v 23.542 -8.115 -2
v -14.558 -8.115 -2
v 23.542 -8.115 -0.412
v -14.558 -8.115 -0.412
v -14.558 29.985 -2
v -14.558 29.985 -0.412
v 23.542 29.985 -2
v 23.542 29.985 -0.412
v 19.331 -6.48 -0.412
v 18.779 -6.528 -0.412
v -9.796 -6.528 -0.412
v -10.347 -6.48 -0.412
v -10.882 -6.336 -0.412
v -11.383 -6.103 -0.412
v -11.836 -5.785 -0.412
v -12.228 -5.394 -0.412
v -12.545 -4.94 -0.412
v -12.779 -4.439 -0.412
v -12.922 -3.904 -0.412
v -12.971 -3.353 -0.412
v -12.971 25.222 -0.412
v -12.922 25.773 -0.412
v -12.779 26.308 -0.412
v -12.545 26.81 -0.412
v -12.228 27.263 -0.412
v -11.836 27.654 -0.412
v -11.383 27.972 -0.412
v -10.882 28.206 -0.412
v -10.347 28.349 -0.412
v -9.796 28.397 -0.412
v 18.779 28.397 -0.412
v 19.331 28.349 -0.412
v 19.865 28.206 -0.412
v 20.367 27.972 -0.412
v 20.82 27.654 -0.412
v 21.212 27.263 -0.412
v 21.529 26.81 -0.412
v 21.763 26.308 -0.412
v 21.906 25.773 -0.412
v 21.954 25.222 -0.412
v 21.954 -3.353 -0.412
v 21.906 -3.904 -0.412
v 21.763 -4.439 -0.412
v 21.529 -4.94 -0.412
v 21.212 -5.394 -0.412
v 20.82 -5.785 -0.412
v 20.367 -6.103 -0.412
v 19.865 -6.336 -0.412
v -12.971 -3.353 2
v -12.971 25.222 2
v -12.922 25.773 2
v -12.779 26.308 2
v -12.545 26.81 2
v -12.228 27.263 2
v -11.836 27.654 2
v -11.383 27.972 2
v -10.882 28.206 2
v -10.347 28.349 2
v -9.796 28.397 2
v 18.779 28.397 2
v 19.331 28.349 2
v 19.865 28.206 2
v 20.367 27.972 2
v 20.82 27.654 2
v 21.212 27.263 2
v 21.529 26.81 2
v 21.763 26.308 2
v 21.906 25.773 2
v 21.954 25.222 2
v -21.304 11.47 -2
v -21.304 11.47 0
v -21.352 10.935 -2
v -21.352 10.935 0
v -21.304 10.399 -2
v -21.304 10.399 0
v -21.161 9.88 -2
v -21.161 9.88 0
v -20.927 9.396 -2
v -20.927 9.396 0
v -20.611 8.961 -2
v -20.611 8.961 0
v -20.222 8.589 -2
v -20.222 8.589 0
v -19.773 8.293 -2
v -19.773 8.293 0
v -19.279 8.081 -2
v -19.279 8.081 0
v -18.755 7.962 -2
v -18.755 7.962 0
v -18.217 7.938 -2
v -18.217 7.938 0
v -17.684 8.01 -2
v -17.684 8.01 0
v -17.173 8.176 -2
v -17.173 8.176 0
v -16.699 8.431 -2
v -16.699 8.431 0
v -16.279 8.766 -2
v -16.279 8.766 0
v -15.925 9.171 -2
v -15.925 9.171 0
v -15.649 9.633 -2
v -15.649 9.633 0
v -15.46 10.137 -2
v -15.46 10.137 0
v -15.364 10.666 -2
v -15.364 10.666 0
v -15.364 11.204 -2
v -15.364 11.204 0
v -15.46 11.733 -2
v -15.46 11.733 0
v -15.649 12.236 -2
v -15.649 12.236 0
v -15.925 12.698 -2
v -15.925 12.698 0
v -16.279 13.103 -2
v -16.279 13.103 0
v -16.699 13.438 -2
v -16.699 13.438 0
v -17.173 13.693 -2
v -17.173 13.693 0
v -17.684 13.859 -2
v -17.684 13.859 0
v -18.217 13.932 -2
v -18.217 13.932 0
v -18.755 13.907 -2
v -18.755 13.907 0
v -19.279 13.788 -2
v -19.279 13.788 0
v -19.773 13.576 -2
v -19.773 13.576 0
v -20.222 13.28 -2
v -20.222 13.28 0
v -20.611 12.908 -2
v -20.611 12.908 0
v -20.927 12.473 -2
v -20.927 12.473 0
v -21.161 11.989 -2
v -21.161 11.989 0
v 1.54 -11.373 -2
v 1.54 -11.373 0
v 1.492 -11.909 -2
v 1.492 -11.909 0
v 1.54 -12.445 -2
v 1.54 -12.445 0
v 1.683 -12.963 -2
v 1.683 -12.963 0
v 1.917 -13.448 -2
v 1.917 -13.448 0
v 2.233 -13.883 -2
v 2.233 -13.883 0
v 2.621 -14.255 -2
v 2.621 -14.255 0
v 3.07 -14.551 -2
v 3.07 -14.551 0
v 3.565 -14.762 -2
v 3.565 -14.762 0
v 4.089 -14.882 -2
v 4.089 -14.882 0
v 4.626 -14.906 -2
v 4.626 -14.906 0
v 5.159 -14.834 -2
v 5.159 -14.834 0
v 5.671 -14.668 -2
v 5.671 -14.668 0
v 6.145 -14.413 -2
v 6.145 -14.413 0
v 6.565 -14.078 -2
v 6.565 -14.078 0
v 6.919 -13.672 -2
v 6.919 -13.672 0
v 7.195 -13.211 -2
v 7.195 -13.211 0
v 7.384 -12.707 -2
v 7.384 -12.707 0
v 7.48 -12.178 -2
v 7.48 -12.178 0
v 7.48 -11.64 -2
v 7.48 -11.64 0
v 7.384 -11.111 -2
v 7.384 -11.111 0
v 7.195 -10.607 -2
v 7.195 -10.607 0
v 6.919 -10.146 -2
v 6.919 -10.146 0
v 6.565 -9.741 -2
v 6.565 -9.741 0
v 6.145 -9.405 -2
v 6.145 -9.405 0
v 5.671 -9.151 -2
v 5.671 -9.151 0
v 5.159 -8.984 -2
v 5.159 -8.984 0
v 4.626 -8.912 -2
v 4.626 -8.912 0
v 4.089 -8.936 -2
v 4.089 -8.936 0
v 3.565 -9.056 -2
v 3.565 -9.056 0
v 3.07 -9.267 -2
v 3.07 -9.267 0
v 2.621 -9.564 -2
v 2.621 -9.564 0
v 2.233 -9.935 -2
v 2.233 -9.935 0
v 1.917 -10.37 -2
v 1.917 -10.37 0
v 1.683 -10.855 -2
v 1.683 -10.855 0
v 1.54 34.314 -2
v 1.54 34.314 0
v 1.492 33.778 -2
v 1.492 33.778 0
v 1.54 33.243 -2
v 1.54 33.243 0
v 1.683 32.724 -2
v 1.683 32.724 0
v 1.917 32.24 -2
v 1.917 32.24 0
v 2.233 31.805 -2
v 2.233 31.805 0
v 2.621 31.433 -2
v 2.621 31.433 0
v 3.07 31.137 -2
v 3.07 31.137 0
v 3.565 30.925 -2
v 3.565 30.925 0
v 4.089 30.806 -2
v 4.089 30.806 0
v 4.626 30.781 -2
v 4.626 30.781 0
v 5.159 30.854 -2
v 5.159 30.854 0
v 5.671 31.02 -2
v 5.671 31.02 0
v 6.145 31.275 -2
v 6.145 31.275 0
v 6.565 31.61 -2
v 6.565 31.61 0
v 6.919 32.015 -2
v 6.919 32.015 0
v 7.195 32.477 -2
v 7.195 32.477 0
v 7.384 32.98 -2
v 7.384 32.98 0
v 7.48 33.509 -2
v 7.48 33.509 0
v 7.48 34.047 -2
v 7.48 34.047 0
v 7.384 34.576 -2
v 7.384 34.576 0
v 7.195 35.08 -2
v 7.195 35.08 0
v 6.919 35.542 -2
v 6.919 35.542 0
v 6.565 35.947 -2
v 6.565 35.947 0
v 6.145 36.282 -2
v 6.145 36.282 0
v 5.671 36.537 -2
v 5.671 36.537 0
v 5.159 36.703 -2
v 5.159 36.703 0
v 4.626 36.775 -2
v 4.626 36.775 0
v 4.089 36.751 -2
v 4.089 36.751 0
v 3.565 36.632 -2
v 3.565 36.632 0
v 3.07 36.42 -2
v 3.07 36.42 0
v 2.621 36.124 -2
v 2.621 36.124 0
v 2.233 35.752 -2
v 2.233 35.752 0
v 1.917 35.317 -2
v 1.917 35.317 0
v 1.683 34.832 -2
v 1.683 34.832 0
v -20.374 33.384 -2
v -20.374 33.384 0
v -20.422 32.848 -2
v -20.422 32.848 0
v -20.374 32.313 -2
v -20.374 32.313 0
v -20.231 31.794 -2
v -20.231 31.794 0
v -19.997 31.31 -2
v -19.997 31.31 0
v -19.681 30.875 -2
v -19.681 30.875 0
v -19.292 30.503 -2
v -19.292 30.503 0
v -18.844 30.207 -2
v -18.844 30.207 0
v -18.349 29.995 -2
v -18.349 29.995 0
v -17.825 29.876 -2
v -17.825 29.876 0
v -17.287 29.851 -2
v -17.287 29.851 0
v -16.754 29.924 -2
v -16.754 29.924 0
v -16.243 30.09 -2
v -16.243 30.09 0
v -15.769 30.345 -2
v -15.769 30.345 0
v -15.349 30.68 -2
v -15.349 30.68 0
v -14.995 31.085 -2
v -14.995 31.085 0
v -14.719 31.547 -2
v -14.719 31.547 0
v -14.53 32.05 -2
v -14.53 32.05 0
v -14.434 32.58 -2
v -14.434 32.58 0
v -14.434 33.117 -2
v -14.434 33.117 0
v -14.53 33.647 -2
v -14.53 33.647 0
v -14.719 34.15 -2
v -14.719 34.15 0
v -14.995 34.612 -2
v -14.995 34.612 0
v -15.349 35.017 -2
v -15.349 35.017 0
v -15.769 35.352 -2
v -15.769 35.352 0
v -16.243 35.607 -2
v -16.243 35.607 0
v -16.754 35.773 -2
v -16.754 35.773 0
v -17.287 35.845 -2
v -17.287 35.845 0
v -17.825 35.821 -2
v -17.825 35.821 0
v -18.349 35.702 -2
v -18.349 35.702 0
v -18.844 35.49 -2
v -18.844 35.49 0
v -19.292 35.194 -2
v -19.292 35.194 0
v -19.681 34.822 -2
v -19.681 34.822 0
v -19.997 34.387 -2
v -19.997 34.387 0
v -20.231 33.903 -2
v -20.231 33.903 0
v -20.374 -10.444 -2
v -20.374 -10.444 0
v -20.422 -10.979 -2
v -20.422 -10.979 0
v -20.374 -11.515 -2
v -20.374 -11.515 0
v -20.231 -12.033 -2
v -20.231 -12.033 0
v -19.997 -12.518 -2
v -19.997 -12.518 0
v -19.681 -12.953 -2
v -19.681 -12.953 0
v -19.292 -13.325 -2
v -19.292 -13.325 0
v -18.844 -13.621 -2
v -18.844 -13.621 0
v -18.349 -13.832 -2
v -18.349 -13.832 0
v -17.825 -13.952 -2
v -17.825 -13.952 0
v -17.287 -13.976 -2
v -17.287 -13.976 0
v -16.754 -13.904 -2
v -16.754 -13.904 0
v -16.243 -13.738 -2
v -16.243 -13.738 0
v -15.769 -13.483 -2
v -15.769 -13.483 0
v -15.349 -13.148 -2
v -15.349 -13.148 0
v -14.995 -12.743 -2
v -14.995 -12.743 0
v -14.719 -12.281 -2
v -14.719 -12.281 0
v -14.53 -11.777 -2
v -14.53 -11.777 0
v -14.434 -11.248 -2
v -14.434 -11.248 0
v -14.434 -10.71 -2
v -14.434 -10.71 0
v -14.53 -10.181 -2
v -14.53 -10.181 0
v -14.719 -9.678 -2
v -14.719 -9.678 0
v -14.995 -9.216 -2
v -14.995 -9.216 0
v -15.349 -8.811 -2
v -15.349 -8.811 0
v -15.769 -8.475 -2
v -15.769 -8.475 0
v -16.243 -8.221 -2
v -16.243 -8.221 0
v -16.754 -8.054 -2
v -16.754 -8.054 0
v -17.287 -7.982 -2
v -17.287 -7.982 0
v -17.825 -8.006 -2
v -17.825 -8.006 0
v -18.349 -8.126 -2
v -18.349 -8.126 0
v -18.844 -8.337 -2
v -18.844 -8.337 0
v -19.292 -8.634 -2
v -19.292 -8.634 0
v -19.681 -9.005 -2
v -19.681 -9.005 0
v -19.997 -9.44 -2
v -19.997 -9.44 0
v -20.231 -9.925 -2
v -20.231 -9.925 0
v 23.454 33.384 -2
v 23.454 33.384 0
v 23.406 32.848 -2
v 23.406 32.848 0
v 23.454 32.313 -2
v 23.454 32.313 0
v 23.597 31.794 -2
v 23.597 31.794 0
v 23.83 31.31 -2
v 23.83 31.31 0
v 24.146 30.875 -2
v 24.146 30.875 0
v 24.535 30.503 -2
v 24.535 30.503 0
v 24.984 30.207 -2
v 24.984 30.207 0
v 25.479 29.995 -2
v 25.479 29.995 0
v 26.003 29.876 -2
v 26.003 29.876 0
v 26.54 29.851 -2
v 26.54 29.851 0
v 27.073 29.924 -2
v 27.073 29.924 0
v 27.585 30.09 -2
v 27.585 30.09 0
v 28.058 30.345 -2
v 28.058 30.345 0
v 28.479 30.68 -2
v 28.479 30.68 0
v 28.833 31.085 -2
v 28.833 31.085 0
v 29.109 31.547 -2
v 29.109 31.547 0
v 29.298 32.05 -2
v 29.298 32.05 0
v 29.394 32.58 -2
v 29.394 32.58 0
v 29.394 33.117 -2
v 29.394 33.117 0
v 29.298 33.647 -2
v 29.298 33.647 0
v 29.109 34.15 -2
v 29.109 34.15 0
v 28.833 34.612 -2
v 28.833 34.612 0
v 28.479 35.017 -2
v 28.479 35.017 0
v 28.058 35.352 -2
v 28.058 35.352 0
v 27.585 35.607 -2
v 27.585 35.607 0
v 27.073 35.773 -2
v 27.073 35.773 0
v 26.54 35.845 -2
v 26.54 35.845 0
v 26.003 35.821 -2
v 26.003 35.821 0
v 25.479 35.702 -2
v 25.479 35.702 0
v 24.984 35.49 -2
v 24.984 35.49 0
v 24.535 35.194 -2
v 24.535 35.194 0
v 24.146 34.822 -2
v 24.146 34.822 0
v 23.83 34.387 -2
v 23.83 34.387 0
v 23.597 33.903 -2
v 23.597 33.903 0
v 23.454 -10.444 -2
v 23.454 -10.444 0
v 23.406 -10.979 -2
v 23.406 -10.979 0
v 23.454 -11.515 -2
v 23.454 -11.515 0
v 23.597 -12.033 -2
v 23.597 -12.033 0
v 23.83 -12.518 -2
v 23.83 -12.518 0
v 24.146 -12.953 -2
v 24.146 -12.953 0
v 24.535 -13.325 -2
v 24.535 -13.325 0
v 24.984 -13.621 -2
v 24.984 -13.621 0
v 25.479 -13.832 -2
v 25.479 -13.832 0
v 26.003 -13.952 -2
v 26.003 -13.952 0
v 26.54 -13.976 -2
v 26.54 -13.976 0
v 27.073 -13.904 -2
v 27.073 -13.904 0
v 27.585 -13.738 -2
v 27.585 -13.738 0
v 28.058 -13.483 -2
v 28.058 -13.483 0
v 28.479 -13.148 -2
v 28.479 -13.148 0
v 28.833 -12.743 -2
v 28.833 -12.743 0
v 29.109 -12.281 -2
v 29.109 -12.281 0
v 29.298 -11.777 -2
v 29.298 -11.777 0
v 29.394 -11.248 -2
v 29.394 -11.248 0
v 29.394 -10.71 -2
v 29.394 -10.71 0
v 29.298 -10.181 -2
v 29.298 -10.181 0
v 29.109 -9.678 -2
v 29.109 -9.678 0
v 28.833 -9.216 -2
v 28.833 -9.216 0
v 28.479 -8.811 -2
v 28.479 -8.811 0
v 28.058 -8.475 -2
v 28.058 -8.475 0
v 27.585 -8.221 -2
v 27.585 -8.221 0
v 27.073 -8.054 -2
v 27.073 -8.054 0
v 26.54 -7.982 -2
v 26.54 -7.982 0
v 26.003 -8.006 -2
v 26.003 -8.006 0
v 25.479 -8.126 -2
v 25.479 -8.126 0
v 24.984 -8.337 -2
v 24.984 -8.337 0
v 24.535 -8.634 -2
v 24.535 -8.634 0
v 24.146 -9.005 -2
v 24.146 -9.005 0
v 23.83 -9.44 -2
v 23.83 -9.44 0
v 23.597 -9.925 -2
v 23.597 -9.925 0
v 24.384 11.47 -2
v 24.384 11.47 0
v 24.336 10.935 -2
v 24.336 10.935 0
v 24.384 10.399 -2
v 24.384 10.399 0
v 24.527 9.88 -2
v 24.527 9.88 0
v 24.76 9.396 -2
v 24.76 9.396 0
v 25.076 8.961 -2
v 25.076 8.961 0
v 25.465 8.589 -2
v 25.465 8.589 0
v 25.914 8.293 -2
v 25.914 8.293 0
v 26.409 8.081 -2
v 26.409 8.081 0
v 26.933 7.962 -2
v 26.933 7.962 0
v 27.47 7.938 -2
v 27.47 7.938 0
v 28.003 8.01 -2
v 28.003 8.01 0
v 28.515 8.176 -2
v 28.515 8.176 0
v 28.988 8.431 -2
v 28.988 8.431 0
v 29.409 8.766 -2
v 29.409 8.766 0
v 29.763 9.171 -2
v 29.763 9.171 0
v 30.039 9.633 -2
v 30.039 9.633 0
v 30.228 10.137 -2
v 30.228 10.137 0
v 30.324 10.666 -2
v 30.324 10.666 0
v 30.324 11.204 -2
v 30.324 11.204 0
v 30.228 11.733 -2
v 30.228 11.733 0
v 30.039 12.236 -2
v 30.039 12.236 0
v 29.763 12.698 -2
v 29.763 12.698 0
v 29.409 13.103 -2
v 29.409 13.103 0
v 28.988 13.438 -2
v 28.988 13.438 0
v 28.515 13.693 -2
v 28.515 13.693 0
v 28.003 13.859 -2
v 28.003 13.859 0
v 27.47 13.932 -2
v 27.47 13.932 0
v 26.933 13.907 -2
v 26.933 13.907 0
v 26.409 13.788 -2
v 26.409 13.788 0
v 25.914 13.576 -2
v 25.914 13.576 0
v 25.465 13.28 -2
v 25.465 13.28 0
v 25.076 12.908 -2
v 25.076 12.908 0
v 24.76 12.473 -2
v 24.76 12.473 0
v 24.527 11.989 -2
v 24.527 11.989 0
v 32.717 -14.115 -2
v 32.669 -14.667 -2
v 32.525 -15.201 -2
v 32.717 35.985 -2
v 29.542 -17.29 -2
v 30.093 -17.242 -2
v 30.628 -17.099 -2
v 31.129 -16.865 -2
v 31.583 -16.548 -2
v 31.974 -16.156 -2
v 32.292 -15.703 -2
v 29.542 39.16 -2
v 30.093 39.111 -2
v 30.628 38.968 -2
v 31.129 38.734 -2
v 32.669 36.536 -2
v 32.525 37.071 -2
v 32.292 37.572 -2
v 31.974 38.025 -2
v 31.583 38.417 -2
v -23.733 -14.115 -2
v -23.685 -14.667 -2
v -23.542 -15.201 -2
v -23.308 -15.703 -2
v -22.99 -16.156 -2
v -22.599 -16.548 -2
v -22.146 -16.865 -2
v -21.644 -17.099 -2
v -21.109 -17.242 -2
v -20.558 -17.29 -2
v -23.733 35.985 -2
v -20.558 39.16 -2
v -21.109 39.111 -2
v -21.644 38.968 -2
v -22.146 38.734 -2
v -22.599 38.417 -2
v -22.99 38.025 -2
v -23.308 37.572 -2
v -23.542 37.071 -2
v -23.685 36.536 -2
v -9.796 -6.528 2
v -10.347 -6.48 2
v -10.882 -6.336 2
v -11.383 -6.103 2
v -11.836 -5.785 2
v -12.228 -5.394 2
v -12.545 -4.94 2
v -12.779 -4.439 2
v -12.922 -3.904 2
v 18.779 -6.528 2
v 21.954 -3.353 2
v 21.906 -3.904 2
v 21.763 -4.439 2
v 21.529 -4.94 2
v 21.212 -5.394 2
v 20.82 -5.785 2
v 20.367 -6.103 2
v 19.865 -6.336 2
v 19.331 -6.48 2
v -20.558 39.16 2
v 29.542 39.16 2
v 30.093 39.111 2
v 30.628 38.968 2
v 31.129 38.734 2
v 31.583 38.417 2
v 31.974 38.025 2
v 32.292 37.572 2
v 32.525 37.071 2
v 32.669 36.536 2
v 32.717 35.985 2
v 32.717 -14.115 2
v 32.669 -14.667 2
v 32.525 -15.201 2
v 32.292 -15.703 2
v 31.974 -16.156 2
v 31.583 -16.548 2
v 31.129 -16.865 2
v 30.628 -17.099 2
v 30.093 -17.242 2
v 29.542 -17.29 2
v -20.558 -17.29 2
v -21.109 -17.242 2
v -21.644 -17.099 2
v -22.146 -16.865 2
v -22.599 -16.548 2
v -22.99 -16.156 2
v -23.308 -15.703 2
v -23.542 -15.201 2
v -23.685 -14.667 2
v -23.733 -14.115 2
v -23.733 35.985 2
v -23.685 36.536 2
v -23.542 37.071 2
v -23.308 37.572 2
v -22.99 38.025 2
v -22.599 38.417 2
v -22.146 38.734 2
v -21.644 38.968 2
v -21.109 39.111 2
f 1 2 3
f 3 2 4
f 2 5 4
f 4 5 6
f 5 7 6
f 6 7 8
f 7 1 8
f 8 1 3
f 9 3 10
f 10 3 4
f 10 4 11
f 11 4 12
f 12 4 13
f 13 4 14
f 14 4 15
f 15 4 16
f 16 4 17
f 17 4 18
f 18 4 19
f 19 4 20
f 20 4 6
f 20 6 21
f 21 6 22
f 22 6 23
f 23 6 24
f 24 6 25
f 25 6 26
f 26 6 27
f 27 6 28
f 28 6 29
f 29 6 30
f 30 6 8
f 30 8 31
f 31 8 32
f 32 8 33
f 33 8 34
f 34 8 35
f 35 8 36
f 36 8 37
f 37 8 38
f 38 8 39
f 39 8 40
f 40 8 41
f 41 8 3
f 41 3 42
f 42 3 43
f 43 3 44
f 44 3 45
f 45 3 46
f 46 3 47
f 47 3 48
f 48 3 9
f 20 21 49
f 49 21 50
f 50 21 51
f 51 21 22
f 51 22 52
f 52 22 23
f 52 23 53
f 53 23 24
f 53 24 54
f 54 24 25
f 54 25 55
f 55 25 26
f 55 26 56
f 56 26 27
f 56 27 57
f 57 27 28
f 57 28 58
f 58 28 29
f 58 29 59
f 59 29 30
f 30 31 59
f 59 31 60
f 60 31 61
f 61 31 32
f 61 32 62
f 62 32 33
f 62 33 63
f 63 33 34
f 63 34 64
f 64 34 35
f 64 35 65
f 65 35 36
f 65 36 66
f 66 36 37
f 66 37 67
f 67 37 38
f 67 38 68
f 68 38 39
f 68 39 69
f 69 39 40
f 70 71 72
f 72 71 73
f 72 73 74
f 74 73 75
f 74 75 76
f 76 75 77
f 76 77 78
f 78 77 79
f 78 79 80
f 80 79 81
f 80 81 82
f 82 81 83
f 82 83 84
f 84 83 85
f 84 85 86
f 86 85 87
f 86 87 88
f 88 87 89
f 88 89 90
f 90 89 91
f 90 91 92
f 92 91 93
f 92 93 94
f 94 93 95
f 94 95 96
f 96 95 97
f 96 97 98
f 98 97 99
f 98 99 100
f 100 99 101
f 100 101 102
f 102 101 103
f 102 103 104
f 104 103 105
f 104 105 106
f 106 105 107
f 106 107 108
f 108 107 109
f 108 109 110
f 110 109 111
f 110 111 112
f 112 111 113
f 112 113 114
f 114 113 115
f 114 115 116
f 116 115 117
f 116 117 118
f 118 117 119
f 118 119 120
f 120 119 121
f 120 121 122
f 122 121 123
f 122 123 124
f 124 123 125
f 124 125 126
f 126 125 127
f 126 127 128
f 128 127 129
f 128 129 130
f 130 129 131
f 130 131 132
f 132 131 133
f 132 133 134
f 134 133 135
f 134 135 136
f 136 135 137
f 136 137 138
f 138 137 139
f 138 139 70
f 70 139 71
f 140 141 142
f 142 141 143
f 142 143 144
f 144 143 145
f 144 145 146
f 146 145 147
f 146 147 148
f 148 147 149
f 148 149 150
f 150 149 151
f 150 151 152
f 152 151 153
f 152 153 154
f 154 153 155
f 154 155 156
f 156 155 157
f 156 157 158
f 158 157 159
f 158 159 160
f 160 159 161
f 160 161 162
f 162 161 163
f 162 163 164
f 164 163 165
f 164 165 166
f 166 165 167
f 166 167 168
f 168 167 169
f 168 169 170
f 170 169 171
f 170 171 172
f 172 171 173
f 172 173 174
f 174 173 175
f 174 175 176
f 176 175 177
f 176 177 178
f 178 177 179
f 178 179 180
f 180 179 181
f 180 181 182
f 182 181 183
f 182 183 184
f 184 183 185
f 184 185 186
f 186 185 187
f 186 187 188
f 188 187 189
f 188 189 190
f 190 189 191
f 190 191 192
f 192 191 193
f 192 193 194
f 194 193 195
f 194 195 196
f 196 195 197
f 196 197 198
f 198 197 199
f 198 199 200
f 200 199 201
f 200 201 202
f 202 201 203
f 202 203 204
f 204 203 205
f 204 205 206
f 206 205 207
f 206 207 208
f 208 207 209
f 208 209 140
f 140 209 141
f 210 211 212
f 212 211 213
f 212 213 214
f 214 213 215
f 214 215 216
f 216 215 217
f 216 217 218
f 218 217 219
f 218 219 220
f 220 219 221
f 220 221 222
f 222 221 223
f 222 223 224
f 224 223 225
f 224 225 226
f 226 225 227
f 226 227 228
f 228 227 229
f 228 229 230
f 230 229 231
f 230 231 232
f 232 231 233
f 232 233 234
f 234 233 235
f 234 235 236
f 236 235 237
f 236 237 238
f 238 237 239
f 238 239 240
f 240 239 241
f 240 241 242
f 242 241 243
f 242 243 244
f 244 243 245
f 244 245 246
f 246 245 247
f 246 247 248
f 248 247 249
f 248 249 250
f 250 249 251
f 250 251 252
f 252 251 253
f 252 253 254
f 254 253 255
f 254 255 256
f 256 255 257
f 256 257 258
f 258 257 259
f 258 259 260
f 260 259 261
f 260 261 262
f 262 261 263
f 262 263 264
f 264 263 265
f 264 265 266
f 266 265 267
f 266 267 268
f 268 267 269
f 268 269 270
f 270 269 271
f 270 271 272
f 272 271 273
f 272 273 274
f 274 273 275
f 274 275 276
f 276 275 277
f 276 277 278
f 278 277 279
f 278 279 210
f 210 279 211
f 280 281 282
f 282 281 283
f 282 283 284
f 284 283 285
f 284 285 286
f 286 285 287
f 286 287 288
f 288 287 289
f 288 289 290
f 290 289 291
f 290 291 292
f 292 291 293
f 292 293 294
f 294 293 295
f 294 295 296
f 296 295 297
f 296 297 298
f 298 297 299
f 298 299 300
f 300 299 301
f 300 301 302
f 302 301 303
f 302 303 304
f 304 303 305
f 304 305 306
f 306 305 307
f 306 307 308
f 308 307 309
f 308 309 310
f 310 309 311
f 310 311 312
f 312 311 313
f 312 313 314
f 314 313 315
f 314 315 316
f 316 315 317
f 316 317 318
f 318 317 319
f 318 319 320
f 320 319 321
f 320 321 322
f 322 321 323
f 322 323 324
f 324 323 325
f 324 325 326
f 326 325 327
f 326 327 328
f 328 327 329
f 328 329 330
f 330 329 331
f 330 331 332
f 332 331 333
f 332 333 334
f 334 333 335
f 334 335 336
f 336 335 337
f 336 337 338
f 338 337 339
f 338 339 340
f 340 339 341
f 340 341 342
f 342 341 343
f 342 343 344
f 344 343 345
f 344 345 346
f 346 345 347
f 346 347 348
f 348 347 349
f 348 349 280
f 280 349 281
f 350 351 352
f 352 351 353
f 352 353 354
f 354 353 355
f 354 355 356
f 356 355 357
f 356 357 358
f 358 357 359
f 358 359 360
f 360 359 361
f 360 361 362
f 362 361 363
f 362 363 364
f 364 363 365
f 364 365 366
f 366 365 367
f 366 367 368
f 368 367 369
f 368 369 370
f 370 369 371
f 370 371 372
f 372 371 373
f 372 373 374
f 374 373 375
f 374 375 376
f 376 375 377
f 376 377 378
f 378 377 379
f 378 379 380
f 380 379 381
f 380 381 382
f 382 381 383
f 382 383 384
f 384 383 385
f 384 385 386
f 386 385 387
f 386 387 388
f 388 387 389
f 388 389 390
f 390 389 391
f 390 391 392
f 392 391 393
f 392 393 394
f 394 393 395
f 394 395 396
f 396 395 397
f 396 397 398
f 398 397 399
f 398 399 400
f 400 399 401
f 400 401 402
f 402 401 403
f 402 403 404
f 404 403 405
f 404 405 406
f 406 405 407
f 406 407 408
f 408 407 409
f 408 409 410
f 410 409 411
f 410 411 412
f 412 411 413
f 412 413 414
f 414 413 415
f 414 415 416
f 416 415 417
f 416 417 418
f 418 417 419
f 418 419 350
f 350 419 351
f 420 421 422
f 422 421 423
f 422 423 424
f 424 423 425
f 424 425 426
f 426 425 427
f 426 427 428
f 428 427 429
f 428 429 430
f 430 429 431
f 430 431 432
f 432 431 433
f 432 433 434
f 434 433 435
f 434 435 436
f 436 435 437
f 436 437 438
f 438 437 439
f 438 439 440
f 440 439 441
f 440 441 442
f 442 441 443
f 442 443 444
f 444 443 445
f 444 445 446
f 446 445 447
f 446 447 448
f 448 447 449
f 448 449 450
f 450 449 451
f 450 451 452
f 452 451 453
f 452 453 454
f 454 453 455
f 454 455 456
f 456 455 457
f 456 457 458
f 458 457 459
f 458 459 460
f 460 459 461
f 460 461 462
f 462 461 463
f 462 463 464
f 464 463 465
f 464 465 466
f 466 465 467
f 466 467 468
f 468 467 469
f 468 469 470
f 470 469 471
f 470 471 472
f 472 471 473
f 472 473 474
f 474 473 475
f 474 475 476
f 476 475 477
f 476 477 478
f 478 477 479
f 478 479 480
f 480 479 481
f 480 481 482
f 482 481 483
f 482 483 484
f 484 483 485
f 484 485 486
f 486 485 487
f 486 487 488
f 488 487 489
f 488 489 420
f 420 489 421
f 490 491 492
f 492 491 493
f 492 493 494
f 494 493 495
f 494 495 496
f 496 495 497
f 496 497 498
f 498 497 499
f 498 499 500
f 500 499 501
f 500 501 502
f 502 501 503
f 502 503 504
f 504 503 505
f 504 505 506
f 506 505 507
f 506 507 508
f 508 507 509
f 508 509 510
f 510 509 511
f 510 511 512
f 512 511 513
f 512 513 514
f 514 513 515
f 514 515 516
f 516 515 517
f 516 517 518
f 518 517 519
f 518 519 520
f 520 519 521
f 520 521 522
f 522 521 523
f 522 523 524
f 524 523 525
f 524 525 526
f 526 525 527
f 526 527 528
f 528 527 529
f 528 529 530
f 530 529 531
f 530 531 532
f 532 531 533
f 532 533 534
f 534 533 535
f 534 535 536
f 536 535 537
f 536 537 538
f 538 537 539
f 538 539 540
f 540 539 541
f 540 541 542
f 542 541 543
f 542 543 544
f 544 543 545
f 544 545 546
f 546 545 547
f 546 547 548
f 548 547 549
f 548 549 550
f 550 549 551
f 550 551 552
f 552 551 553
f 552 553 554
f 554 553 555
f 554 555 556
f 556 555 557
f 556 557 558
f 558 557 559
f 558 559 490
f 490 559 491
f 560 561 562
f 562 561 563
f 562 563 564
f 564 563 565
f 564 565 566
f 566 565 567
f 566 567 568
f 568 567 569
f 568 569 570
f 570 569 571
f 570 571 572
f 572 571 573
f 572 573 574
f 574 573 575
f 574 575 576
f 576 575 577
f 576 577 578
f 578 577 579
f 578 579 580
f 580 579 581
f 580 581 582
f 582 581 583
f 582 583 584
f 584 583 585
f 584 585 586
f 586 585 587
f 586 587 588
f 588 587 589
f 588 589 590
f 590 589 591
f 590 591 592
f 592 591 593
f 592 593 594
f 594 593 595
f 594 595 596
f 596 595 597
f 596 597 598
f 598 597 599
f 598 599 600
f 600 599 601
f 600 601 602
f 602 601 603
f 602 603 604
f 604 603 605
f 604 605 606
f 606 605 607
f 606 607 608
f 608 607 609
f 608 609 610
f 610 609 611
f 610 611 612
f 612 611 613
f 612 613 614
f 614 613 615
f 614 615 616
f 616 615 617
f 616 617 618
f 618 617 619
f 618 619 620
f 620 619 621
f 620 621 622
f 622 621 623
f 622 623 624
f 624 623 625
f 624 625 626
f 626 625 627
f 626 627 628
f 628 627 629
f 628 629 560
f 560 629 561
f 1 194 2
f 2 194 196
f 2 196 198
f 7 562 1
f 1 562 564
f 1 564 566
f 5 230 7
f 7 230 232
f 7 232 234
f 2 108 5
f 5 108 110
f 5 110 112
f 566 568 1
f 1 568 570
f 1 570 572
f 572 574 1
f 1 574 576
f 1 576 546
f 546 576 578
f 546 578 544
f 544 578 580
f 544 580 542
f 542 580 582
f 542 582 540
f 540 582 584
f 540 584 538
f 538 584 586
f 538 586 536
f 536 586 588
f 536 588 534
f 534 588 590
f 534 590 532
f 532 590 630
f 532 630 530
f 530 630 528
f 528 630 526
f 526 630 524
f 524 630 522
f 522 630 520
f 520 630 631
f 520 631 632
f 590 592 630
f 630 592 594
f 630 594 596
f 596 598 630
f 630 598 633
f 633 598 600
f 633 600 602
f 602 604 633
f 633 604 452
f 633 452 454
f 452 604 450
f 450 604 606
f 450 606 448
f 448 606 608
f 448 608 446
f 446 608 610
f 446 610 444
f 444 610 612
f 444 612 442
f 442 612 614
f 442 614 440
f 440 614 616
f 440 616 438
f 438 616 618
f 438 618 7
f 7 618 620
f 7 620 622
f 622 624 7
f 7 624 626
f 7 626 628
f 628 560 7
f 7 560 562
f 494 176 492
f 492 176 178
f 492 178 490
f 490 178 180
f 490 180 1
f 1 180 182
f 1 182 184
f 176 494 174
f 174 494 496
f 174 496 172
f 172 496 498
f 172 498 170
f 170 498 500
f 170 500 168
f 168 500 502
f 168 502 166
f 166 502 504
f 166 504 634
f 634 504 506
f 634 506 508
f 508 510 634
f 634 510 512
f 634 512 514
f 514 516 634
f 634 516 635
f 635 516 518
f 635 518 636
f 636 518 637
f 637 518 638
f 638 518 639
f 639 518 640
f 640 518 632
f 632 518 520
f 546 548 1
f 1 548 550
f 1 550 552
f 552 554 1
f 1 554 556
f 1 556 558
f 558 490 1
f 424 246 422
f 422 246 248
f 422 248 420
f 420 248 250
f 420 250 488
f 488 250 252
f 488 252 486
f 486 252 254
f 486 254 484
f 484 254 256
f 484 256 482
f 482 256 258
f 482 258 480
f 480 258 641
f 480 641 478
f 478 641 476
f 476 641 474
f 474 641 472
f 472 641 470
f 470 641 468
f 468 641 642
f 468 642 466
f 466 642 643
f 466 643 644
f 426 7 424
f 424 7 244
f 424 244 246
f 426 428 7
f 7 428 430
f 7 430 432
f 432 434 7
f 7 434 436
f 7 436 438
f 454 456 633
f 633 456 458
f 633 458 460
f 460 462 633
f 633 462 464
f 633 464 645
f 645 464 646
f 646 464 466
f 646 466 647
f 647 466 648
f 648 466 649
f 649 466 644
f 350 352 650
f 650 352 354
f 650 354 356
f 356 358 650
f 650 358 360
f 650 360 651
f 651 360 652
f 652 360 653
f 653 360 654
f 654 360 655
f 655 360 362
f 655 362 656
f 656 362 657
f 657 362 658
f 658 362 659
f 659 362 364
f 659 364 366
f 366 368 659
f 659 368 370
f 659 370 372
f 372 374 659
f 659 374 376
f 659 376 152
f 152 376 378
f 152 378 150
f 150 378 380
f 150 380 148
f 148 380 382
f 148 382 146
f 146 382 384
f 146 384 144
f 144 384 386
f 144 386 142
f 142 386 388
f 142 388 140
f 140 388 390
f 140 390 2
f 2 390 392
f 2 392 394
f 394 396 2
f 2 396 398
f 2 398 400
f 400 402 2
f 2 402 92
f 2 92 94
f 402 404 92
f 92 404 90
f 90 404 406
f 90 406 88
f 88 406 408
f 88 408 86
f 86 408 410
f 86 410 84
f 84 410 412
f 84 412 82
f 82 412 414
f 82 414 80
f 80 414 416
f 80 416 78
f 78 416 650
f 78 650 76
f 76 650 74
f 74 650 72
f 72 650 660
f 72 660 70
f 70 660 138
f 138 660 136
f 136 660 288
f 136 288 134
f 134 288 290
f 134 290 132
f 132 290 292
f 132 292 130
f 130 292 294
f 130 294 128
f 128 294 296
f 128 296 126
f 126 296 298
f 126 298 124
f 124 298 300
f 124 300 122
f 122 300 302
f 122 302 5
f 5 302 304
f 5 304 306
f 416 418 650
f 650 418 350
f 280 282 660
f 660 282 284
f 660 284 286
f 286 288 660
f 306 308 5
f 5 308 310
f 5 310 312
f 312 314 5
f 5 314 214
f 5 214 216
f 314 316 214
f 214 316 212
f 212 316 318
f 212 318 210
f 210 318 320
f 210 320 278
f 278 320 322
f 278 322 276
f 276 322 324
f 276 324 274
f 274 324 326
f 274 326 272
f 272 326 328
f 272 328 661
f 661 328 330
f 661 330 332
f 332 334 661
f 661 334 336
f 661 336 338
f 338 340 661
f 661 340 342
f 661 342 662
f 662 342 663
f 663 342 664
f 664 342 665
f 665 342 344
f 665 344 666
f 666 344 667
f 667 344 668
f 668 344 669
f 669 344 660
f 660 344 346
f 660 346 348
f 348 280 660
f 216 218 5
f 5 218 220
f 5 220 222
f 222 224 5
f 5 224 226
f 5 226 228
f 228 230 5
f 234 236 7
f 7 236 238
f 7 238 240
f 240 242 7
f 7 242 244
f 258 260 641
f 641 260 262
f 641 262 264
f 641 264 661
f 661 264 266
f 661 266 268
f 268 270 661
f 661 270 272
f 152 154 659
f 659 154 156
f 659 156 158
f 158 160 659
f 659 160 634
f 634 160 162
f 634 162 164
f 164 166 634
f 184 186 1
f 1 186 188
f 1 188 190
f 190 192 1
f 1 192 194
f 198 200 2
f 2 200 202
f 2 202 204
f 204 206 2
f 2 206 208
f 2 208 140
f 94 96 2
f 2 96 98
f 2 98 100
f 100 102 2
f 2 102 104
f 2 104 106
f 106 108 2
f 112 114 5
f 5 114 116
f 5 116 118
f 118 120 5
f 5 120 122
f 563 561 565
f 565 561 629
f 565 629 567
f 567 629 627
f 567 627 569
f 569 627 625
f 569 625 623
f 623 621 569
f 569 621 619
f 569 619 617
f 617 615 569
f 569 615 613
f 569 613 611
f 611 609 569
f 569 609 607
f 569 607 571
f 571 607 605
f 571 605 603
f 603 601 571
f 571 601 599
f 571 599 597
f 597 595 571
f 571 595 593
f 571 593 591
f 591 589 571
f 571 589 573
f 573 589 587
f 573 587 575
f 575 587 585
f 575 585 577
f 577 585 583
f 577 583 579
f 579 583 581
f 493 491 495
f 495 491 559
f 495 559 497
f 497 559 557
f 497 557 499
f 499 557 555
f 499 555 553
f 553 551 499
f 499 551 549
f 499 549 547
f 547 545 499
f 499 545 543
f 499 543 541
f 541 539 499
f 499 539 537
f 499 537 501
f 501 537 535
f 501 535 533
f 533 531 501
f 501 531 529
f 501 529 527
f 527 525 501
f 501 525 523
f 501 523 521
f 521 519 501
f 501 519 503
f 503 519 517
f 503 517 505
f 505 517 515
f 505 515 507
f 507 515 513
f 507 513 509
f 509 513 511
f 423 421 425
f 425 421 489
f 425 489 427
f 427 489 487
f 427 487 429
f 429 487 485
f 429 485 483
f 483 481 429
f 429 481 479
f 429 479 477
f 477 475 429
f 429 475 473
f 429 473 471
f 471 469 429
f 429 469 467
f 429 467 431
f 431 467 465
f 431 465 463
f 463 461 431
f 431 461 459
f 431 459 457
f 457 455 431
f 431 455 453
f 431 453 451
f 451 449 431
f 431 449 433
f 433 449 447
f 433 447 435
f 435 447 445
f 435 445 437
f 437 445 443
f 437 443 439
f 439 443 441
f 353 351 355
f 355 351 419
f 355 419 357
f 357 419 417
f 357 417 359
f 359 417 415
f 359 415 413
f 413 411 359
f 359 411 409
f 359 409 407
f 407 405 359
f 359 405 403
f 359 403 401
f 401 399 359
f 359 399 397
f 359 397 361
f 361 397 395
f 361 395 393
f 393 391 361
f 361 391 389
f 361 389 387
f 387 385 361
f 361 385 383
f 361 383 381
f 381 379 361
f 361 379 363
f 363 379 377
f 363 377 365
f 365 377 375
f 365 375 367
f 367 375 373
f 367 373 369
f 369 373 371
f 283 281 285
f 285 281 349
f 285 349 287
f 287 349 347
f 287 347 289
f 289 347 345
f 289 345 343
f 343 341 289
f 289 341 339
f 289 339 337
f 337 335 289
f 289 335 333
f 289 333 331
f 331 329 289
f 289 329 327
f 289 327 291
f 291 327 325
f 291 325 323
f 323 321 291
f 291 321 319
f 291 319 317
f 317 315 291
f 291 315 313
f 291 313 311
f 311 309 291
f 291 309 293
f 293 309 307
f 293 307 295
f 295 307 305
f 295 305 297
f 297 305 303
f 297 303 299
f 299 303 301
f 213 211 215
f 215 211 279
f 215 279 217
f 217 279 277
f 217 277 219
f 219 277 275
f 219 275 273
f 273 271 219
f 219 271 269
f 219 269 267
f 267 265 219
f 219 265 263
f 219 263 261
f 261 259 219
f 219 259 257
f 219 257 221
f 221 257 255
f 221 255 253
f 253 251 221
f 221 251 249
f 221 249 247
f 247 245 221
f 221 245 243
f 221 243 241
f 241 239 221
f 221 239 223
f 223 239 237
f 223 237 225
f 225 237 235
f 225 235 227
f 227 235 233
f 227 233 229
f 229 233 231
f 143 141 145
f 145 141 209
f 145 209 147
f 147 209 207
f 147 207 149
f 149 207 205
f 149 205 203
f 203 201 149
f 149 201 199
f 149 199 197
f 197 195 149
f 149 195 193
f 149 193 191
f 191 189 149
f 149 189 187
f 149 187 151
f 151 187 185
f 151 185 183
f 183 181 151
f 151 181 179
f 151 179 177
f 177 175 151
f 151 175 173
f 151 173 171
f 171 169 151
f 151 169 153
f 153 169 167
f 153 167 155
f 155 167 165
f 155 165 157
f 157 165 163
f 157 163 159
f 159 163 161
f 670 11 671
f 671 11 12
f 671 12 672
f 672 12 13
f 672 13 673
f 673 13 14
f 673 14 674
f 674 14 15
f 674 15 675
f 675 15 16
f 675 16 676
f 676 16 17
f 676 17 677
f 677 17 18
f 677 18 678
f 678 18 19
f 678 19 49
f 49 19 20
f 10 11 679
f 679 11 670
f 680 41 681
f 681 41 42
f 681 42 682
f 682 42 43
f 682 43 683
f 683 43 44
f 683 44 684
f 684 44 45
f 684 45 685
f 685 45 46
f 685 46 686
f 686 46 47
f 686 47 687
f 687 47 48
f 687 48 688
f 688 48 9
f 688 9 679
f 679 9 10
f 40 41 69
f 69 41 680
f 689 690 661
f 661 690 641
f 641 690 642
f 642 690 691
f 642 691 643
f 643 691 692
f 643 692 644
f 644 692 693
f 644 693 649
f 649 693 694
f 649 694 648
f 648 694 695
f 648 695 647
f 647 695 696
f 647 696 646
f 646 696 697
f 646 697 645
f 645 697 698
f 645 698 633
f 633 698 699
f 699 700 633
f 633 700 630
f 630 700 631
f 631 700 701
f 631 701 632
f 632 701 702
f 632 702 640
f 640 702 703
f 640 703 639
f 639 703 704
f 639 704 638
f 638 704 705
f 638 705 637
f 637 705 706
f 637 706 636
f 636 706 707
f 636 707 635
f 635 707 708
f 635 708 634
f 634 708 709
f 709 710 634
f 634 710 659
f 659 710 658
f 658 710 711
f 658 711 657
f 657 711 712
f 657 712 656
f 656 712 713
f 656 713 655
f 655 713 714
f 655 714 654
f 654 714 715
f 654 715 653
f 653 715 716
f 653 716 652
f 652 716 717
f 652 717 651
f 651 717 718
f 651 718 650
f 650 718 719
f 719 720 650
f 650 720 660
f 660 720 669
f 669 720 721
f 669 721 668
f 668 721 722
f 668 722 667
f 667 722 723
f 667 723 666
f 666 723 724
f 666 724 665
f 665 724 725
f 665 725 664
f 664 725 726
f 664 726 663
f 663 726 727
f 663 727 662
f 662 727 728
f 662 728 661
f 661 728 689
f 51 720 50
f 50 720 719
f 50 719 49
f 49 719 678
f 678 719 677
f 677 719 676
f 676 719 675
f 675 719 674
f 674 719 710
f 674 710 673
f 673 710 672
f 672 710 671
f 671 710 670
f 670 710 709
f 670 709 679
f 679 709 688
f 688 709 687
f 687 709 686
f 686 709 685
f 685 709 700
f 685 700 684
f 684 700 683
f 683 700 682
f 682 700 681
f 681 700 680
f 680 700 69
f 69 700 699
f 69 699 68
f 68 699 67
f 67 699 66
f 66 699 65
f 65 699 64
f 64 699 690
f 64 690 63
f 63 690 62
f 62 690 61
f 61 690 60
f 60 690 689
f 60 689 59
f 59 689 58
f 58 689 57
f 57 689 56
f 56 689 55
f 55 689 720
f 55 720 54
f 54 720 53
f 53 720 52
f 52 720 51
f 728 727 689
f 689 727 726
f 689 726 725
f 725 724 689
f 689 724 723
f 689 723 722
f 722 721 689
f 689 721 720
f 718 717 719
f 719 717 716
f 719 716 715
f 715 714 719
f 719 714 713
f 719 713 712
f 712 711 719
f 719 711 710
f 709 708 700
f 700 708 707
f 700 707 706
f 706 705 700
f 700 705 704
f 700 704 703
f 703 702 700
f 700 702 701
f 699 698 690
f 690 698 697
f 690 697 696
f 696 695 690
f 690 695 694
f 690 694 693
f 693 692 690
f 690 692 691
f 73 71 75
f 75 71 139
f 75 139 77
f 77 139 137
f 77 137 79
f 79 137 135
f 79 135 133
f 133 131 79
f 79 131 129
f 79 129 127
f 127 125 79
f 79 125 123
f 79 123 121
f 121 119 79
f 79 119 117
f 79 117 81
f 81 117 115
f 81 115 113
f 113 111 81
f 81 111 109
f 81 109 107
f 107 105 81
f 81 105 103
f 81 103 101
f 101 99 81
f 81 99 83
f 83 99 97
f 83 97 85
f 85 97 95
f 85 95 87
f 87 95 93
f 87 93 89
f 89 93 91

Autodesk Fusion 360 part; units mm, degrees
sketch "Sketch1" plane through (0, 0, 0) normal (0, 0, 1) x (1, 0, 0)
  line L0 (-9.7956, 28.3971) -> (18.7794, 28.3971)
  line L1 (21.9544, 25.2221) -> (21.9544, -3.3529)
  line L2 (18.7794, -6.5279) -> (-9.7956, -6.5279)
  line L3 (-12.9706, -3.3529) -> (-12.9706, 25.2221)
  line L4 (-20.5581, 39.1596) -> (29.5419, 39.1596)
  line L5 (32.7169, 35.9846) -> (32.7169, -14.1154)
  line L6 (29.5419, -17.2904) -> (-20.5581, -17.2904)
  line L7 (-23.7331, -14.1154) -> (-23.7331, 35.9846)
  arc A0 (-20.5581, 39.1596) -> (-23.7331, 35.9846) centre (-20.5581, 35.9846) ccw
  arc A1 (-9.7956, 28.3971) -> (-12.9706, 25.2221) centre (-9.7956, 25.2221) ccw
  arc A2 (21.9544, 25.2221) -> (18.7794, 28.3971) centre (18.7794, 25.2221) ccw
  arc A3 (32.7169, 35.9846) -> (29.5419, 39.1596) centre (29.5419, 35.9846) ccw
  arc A4 (29.5419, -17.2904) -> (32.7169, -14.1154) centre (29.5419, -14.1154) ccw
  arc A5 (18.7794, -6.5279) -> (21.9544, -3.3529) centre (18.7794, -3.3529) ccw
  arc A6 (-12.9706, -3.3529) -> (-9.7956, -6.5279) centre (-9.7956, -3.3529) ccw
  arc A7 (-23.7331, -14.1154) -> (-20.5581, -17.2904) centre (-20.5581, -14.1154) ccw
  circle A8 centre (26.4057, -10.9792) radius 3
  line L8 (21.9544, 10.9346) -> (-12.9706, 10.9346)
  line L9 (4.4919, -6.5279) -> (4.4919, 28.3971)
  circle A9 centre (4.4919, -11.9091) radius 3
  line L10 (21.0245, -5.5979) -> (24.2844, -8.8579) construction
  line L11 (21.0245, -5.5979) -> (21.383, -5.5979) construction
  line L12 (31.787, -16.3604) -> (28.527, -13.1005) construction
  line L13 (31.787, -16.3604) -> (27.9277, -16.3604) construction
  circle A10 centre (26.4057, 32.8484) radius 3
  circle A11 centre (27.3356, 10.9346) radius 3
  circle A12 centre (-17.4219, 32.8484) radius 3
  circle A13 centre (4.4919, 33.7784) radius 3
  circle A14 centre (-17.4219, -10.9792) radius 3
  circle A15 centre (-18.3519, 10.9346) radius 3
  line L14 (-14.5581, 29.9846) -> (23.5419, 29.9846)
  line L15 (23.5419, 29.9846) -> (23.5419, -8.1154)
  line L16 (23.5419, -8.1154) -> (-14.5581, -8.1154)
  line L17 (-14.5581, -8.1154) -> (-14.5581, 29.9846)
  line L18 (4.4919, 29.9846) -> (4.4919, -8.1154)
  line L19 (23.5419, 10.9346) -> (-14.5581, 10.9346)
  point P0 (-12.9706, 28.3971)
  point P1 (21.9544, 28.3971)
  point P2 (-12.9706, -6.5279)
  point P3 (4.4919, 10.9346)
  point P4 (4.4919, 10.9346)
  dimension "d1" = 34.925
  dimension "d2" = 34.925
  dimension "d3" = 10.7625
  dimension "d4" = 10.7625
  dimension "d5" = 10.7625
  dimension "d6" = 10.7625
  dimension "d7" = 3.175
  dimension "d8" = 6
  dimension "d11" = 6
  dimension "d16" = 45
  dimension "d17" = 135
  dimension "d18" = 5.3813
  dimension "d20" = 360
  dimension "d25" = 38.1
  dimension "d26" = 38.1
extrude "Extrude1" add sketch "Sketch1" along normal blind 2 contours L0 L3 A1 L14 L17 L18 L19 | L0 L1 A2 L14 L15 L18 L19 | L2 L3 A6 L16 L17 L18 L19 | L1 L2 A5 L15 L16 L18 L19 | L4 L5 L6 L7 A0 A3 A4 A7 | A8 | A9 | A10 | A11 | A12 | A13 | A14 | A15
extrude "Extrude2" add sketch "Sketch1" against normal blind 2 contours L0 L3 A1 L14 L17 L18 L19 | L0 L1 A2 L14 L15 L18 L19 | L2 L3 A6 L16 L17 L18 L19 | L1 L2 A5 L15 L16 L18 L19 | L4 L5 L6 L7 A0 A3 A4 A7
sketch "Sketch2" plane through (0, 0, -2) normal (0, 0, -1) x (1, 0, 0)
  circle A0 centre (27.3356, -10.9346) radius 3
  circle A1 centre (26.4057, 10.9792) radius 3
  circle A2 centre (26.4057, -32.8484) radius 3
  circle A3 centre (-17.4219, 10.9792) radius 3
  circle A4 centre (-17.4219, -32.8484) radius 3
  circle A5 centre (4.4919, -33.7784) radius 3
  circle A6 centre (4.4919, 11.9091) radius 3
  arc A7 (-12.9706, -25.2221) -> (-9.7956, -28.3971) centre (-9.7956, -25.2221) ccw
  line L0 (-12.9706, -25.2221) -> (-12.9706, 3.3529)
  arc A8 (-9.7956, 6.5279) -> (-12.9706, 3.3529) centre (-9.7956, 3.3529) ccw
  line L1 (-9.7956, 6.5279) -> (18.7794, 6.5279)
  arc A9 (21.9544, 3.3529) -> (18.7794, 6.5279) centre (18.7794, 3.3529) ccw
  line L2 (21.9544, 3.3529) -> (21.9544, -25.2221)
  arc A10 (18.7794, -28.3971) -> (21.9544, -25.2221) centre (18.7794, -25.2221) ccw
  line L3 (18.7794, -28.3971) -> (-9.7956, -28.3971)
  circle A11 centre (-18.3519, -10.9346) radius 3
  arc A12 (-23.7331, -35.9846) -> (-20.5581, -39.1596) centre (-20.5581, -35.9846) ccw
  line L4 (-20.5581, -39.1596) -> (29.5419, -39.1596)
  arc A13 (29.5419, -39.1596) -> (32.7169, -35.9846) centre (29.5419, -35.9846) ccw
  line L5 (32.7169, -35.9846) -> (32.7169, 14.1154)
  arc A14 (32.7169, 14.1154) -> (29.5419, 17.2904) centre (29.5419, 14.1154) ccw
  line L6 (29.5419, 17.2904) -> (-20.5581, 17.2904)
  arc A15 (-20.5581, 17.2904) -> (-23.7331, 14.1154) centre (-20.5581, 14.1154) ccw
  line L7 (-23.7331, 14.1154) -> (-23.7331, -35.9846)
  line L8 (23.5419, 8.1154) -> (-14.5581, 8.1154)
  line L9 (-14.5581, 8.1154) -> (-14.5581, -29.9846)
  line L10 (-14.5581, -29.9846) -> (23.5419, -29.9846)
  line L11 (23.5419, -29.9846) -> (23.5419, 8.1154)
extrude "Extrude3" cut sketch "Sketch2" against normal blind 1.5875 contours L8 L9 L10 L11
equation "d1 = d25 - 0.125 in"
equation "d2 = d1"
equation "d3 = d8 + 0.1875 in"
equation "d4 = d3"
equation "d5 = d3"
equation "d6 = d3"
equation "d11 = d8"
equation "d14 = d6 / 2"
equation "d18 = d5 / 2"
equation "d26 = d25"
